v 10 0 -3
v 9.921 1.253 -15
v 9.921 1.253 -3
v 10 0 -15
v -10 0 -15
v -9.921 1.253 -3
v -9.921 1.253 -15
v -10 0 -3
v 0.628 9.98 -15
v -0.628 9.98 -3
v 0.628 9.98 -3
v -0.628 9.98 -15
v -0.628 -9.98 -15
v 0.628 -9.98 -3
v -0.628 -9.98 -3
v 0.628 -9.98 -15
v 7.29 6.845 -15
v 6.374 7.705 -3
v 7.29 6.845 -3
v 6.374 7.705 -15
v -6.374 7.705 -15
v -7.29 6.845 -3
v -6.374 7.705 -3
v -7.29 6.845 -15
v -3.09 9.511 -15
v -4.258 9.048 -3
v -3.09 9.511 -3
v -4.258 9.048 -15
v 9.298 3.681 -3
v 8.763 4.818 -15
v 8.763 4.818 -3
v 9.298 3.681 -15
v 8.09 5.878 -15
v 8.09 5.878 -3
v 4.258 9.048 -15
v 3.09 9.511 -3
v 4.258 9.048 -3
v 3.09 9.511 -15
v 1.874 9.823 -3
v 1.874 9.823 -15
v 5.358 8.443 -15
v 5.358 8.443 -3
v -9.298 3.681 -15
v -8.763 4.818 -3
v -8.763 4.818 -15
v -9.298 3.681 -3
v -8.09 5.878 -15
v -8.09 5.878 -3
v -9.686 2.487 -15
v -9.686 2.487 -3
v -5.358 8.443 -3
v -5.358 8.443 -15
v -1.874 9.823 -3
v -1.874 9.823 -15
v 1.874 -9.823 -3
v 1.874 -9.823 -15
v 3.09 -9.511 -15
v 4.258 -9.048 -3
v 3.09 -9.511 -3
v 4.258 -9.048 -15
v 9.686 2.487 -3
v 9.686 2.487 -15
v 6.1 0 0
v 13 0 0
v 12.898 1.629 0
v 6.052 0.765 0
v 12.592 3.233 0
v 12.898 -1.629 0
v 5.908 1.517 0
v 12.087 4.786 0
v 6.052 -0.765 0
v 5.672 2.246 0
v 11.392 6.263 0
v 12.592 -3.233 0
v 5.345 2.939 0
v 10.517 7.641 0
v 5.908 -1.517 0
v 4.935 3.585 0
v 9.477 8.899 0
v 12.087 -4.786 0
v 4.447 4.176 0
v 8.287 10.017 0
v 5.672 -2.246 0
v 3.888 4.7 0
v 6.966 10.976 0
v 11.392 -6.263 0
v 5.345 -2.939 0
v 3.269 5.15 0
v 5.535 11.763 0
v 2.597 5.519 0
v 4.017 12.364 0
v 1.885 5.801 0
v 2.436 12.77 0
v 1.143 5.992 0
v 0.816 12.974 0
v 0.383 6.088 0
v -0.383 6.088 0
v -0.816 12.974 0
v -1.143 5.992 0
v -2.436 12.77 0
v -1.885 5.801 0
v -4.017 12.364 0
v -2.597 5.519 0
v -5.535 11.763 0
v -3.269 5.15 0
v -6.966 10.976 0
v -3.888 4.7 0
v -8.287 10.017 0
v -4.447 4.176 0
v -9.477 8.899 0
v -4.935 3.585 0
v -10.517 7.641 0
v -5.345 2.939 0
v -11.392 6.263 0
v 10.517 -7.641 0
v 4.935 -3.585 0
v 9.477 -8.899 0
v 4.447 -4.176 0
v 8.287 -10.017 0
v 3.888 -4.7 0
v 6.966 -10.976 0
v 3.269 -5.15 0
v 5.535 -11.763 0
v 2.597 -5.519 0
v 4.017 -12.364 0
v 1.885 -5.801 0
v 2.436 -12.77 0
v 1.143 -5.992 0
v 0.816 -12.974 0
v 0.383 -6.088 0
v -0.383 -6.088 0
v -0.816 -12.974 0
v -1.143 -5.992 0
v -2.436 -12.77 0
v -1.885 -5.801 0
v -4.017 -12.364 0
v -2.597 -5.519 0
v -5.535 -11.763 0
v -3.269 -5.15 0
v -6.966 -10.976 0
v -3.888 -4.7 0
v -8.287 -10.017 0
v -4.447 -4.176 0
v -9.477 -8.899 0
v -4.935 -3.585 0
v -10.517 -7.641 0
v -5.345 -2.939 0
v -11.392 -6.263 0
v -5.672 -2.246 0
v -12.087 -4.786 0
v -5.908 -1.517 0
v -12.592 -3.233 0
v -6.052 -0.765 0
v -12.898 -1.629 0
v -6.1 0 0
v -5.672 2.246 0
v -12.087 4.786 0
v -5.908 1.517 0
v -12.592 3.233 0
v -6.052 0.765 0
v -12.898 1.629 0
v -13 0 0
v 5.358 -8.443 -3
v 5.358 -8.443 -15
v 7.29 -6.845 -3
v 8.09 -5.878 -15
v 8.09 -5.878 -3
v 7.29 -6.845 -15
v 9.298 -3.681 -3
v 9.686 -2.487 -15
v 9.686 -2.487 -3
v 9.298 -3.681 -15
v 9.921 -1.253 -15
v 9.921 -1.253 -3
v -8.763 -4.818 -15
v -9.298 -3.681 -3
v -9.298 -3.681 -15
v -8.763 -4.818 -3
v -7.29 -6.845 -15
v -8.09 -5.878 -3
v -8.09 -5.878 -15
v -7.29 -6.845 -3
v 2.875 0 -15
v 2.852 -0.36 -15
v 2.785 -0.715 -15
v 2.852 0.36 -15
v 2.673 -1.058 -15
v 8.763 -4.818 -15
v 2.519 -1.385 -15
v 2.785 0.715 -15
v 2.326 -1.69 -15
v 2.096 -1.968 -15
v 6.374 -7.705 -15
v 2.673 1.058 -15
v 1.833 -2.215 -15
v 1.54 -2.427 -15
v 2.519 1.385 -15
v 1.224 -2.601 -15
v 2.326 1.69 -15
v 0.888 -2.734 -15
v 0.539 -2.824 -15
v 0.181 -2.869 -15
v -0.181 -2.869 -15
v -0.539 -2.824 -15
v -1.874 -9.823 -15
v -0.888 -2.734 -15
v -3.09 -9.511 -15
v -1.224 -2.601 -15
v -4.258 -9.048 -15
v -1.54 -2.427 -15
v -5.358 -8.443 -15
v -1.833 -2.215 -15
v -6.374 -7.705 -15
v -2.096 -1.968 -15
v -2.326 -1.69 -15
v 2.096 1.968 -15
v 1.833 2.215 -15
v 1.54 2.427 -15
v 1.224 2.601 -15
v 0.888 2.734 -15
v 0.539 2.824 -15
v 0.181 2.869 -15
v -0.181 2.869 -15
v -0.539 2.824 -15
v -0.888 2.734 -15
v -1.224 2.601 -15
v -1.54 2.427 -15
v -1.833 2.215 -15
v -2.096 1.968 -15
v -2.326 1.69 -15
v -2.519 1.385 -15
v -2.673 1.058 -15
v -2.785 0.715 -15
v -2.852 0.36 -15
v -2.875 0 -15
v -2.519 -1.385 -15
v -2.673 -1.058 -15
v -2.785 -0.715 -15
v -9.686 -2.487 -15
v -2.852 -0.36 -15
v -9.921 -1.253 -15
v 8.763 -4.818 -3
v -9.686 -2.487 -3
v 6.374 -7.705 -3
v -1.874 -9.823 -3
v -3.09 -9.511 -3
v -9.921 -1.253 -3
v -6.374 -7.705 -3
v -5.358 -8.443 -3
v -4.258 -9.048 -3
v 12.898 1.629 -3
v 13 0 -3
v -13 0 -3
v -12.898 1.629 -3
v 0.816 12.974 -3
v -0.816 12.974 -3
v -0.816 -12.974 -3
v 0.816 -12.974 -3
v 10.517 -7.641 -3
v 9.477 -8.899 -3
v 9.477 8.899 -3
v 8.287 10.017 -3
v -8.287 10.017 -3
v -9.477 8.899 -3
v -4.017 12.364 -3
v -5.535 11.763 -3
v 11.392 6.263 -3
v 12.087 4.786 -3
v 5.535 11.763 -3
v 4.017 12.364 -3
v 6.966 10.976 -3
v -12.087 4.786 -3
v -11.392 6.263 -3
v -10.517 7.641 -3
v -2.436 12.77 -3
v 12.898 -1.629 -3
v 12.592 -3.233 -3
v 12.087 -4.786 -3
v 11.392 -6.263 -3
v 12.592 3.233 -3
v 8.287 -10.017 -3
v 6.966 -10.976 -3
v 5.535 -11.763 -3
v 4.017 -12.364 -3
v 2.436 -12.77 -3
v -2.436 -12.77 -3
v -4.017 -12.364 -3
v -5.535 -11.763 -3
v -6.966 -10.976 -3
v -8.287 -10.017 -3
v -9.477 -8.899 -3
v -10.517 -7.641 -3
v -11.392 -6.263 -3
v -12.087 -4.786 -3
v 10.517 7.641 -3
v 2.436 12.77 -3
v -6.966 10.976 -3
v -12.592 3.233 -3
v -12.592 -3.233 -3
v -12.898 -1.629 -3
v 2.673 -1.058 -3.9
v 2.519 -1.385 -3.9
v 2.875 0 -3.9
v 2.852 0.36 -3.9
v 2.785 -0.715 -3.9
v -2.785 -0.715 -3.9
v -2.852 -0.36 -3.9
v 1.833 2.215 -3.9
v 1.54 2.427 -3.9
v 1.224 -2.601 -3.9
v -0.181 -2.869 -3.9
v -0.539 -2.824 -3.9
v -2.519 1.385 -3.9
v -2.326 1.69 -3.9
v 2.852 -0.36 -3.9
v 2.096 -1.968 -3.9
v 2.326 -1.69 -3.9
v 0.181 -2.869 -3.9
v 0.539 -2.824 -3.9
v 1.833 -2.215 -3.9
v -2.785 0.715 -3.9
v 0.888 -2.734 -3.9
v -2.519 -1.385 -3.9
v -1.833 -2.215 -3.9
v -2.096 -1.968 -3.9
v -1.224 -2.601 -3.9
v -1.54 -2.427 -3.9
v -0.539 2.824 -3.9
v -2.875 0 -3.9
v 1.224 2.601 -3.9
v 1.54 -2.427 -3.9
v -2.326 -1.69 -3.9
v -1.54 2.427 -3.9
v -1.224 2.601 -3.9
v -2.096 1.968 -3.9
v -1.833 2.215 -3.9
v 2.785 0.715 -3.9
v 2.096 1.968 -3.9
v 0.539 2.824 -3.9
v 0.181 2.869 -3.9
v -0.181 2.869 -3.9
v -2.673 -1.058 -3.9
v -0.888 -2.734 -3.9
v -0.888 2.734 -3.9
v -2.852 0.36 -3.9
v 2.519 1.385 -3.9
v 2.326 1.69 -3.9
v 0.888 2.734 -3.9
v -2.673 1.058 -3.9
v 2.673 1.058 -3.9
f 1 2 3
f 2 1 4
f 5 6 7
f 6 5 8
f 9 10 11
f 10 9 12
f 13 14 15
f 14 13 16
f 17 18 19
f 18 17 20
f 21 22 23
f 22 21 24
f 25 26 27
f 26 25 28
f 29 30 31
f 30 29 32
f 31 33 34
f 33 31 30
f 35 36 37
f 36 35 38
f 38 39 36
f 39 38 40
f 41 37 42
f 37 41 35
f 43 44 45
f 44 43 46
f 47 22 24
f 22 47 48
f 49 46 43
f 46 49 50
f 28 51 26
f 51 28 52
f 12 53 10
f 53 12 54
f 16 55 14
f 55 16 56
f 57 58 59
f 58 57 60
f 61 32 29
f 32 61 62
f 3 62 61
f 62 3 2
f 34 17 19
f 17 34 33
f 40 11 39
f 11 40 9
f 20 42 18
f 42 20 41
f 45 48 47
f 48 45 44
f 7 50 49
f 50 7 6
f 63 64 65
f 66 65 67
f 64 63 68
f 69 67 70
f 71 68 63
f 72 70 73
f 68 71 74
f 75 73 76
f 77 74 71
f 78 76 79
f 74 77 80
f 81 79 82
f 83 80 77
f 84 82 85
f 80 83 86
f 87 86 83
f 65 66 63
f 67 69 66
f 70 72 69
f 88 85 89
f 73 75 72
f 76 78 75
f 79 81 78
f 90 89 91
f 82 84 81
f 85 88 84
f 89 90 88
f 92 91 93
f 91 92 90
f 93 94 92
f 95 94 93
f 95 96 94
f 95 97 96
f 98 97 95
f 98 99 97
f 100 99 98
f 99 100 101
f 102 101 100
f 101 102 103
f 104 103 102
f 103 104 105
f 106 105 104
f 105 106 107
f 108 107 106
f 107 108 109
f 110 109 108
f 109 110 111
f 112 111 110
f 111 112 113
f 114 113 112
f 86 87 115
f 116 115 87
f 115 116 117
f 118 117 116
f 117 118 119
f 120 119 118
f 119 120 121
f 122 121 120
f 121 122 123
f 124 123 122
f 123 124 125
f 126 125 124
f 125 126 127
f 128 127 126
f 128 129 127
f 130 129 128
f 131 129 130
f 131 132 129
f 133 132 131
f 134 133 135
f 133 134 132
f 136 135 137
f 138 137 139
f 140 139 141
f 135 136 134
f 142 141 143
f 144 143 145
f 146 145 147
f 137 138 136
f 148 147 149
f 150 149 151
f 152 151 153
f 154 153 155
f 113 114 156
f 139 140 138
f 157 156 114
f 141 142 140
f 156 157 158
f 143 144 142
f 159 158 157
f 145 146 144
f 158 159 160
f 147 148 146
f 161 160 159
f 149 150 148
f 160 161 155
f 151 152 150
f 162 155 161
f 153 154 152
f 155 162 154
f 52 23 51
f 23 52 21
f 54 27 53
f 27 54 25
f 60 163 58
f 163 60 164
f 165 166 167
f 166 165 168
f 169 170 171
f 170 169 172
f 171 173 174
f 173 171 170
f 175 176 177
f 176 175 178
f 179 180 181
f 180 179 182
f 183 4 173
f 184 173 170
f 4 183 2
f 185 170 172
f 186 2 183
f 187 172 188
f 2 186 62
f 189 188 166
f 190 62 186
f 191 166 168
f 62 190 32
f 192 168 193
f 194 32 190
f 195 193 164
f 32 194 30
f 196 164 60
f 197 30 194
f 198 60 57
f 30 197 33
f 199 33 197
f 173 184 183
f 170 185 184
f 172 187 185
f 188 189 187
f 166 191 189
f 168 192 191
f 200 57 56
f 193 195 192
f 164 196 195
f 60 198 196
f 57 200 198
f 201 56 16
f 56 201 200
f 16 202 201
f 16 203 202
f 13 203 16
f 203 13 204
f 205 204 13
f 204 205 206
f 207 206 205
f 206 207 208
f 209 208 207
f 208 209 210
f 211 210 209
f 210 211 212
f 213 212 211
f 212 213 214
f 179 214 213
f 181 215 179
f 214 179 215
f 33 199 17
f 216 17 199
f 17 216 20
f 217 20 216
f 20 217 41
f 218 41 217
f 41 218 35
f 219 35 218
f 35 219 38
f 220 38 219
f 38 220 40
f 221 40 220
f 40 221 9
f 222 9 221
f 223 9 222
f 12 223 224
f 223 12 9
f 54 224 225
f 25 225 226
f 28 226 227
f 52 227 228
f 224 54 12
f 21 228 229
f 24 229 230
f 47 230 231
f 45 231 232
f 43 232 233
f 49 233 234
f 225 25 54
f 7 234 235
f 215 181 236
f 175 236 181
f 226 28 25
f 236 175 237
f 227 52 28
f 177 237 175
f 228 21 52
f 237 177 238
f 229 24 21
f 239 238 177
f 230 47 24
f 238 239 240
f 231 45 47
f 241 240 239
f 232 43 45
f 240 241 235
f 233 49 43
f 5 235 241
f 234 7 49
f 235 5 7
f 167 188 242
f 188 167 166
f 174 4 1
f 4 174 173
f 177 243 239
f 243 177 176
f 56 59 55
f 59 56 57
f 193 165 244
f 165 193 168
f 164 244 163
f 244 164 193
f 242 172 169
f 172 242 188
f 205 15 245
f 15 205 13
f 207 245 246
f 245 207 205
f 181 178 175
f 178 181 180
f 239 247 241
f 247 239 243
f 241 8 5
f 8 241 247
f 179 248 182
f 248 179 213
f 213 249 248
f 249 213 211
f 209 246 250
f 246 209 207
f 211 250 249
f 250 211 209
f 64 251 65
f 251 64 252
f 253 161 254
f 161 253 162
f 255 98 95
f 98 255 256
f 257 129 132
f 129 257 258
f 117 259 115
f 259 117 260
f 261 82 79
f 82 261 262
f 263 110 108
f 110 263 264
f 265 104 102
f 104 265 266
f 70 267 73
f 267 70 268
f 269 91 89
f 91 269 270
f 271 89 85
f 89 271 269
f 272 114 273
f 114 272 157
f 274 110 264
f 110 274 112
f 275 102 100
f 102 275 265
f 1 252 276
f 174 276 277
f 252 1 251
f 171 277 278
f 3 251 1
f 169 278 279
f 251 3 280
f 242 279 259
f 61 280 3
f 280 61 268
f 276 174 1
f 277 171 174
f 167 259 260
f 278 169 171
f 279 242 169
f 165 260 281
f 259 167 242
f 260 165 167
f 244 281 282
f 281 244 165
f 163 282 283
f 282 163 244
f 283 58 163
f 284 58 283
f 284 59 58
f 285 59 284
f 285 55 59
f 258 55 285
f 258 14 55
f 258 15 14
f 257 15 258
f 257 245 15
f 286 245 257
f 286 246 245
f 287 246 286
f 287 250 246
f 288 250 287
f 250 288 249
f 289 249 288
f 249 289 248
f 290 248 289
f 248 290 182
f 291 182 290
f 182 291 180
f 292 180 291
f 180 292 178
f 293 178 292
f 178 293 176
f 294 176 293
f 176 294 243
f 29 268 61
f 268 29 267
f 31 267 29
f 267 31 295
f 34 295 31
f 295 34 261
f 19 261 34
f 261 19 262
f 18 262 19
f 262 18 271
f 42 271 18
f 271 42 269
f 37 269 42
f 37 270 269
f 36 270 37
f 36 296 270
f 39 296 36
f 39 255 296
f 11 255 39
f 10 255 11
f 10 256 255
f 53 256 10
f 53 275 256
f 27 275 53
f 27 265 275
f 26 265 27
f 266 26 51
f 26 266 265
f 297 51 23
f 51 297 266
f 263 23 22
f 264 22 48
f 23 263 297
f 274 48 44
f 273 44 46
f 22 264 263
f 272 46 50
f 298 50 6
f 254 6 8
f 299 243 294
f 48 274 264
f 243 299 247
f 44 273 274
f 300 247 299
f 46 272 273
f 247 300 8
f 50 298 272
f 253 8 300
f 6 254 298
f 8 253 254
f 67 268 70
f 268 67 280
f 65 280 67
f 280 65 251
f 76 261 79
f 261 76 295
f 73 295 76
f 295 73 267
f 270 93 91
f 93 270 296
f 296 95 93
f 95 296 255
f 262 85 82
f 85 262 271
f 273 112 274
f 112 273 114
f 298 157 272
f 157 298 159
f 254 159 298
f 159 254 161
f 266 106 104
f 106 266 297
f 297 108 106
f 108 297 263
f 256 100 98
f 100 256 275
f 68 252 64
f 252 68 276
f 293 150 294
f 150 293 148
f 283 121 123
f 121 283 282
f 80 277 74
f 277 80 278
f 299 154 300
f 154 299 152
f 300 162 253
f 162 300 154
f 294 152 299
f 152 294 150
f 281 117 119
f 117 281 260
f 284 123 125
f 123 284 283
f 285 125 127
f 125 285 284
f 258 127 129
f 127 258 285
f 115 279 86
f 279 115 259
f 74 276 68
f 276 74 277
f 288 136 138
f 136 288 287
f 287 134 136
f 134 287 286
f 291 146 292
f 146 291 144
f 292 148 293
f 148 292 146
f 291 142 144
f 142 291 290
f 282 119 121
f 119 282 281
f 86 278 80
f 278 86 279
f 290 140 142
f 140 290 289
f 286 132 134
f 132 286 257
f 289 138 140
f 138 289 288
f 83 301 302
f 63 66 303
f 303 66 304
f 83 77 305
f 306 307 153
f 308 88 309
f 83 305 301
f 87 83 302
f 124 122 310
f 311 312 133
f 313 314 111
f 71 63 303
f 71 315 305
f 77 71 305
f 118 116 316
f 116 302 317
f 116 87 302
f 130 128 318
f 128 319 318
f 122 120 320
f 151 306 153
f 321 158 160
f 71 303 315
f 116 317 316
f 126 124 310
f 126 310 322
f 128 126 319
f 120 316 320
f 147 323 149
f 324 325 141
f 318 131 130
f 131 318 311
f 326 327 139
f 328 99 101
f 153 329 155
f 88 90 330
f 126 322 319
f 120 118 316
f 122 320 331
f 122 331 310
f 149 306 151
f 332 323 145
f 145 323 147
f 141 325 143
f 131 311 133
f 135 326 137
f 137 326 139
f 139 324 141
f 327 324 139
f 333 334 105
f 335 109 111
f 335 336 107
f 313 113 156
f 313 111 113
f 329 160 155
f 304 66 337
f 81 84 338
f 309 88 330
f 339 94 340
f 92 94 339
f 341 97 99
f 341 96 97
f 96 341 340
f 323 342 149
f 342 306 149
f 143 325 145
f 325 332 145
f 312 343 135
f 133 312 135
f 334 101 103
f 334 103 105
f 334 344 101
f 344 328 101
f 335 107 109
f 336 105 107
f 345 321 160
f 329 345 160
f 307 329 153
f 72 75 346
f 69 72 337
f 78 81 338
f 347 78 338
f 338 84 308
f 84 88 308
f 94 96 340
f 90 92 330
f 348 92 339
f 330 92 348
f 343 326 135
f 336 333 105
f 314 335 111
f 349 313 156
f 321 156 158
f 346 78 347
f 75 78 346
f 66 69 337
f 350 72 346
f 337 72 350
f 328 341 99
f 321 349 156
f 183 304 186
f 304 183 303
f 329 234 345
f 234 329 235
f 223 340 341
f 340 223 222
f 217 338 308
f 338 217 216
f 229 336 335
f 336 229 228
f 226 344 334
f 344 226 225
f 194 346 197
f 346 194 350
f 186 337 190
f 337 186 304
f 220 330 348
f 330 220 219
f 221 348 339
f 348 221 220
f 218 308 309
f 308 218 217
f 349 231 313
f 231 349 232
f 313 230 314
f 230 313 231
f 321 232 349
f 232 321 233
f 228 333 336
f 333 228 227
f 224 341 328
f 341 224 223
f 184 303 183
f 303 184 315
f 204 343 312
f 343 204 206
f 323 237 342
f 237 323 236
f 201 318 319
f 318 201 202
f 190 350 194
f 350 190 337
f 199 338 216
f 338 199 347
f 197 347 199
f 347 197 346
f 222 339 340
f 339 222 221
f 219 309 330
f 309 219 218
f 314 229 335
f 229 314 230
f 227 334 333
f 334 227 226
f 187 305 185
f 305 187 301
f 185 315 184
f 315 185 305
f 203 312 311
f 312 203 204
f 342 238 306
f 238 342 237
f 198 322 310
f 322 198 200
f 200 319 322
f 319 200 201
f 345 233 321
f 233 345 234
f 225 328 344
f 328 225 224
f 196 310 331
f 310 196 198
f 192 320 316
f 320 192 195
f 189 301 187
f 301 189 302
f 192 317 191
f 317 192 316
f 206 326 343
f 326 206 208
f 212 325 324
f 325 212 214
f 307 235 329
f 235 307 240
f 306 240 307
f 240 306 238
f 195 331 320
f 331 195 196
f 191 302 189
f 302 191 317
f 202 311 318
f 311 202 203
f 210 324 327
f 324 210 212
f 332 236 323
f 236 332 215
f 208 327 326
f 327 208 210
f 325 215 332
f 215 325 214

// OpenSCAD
$fn = 50;


difference() {
	union() {
		translate(v = [0, 0, -15.0000000000]) {
			cylinder(h = 15, r = 10.0000000000);
		}
		translate(v = [0, 0, -3.0000000000]) {
			cylinder(h = 3, r = 13.0000000000);
		}
	}
	union() {
		translate(v = [0, 0, 0]) {
			rotate(a = [0, 0, 0]) {
				difference() {
					union() {
						translate(v = [0, 0, -15.0000000000]) {
							cylinder(h = 15, r = 2.6000000000);
						}
						translate(v = [0, 0, -3.9000000000]) {
							cylinder(h = 3.9000000000, r = 10.0000000000, r1 = 2.8750000000, r2 = 6.1000000000);
						}
						translate(v = [0, 0, -15.0000000000]) {
							cylinder(h = 15, r = 2.8750000000);
						}
						translate(v = [0, 0, -15.0000000000]) {
							cylinder(h = 15, r = 2.6000000000);
						}
					}
					union();
				}
			}
		}
	}
}
